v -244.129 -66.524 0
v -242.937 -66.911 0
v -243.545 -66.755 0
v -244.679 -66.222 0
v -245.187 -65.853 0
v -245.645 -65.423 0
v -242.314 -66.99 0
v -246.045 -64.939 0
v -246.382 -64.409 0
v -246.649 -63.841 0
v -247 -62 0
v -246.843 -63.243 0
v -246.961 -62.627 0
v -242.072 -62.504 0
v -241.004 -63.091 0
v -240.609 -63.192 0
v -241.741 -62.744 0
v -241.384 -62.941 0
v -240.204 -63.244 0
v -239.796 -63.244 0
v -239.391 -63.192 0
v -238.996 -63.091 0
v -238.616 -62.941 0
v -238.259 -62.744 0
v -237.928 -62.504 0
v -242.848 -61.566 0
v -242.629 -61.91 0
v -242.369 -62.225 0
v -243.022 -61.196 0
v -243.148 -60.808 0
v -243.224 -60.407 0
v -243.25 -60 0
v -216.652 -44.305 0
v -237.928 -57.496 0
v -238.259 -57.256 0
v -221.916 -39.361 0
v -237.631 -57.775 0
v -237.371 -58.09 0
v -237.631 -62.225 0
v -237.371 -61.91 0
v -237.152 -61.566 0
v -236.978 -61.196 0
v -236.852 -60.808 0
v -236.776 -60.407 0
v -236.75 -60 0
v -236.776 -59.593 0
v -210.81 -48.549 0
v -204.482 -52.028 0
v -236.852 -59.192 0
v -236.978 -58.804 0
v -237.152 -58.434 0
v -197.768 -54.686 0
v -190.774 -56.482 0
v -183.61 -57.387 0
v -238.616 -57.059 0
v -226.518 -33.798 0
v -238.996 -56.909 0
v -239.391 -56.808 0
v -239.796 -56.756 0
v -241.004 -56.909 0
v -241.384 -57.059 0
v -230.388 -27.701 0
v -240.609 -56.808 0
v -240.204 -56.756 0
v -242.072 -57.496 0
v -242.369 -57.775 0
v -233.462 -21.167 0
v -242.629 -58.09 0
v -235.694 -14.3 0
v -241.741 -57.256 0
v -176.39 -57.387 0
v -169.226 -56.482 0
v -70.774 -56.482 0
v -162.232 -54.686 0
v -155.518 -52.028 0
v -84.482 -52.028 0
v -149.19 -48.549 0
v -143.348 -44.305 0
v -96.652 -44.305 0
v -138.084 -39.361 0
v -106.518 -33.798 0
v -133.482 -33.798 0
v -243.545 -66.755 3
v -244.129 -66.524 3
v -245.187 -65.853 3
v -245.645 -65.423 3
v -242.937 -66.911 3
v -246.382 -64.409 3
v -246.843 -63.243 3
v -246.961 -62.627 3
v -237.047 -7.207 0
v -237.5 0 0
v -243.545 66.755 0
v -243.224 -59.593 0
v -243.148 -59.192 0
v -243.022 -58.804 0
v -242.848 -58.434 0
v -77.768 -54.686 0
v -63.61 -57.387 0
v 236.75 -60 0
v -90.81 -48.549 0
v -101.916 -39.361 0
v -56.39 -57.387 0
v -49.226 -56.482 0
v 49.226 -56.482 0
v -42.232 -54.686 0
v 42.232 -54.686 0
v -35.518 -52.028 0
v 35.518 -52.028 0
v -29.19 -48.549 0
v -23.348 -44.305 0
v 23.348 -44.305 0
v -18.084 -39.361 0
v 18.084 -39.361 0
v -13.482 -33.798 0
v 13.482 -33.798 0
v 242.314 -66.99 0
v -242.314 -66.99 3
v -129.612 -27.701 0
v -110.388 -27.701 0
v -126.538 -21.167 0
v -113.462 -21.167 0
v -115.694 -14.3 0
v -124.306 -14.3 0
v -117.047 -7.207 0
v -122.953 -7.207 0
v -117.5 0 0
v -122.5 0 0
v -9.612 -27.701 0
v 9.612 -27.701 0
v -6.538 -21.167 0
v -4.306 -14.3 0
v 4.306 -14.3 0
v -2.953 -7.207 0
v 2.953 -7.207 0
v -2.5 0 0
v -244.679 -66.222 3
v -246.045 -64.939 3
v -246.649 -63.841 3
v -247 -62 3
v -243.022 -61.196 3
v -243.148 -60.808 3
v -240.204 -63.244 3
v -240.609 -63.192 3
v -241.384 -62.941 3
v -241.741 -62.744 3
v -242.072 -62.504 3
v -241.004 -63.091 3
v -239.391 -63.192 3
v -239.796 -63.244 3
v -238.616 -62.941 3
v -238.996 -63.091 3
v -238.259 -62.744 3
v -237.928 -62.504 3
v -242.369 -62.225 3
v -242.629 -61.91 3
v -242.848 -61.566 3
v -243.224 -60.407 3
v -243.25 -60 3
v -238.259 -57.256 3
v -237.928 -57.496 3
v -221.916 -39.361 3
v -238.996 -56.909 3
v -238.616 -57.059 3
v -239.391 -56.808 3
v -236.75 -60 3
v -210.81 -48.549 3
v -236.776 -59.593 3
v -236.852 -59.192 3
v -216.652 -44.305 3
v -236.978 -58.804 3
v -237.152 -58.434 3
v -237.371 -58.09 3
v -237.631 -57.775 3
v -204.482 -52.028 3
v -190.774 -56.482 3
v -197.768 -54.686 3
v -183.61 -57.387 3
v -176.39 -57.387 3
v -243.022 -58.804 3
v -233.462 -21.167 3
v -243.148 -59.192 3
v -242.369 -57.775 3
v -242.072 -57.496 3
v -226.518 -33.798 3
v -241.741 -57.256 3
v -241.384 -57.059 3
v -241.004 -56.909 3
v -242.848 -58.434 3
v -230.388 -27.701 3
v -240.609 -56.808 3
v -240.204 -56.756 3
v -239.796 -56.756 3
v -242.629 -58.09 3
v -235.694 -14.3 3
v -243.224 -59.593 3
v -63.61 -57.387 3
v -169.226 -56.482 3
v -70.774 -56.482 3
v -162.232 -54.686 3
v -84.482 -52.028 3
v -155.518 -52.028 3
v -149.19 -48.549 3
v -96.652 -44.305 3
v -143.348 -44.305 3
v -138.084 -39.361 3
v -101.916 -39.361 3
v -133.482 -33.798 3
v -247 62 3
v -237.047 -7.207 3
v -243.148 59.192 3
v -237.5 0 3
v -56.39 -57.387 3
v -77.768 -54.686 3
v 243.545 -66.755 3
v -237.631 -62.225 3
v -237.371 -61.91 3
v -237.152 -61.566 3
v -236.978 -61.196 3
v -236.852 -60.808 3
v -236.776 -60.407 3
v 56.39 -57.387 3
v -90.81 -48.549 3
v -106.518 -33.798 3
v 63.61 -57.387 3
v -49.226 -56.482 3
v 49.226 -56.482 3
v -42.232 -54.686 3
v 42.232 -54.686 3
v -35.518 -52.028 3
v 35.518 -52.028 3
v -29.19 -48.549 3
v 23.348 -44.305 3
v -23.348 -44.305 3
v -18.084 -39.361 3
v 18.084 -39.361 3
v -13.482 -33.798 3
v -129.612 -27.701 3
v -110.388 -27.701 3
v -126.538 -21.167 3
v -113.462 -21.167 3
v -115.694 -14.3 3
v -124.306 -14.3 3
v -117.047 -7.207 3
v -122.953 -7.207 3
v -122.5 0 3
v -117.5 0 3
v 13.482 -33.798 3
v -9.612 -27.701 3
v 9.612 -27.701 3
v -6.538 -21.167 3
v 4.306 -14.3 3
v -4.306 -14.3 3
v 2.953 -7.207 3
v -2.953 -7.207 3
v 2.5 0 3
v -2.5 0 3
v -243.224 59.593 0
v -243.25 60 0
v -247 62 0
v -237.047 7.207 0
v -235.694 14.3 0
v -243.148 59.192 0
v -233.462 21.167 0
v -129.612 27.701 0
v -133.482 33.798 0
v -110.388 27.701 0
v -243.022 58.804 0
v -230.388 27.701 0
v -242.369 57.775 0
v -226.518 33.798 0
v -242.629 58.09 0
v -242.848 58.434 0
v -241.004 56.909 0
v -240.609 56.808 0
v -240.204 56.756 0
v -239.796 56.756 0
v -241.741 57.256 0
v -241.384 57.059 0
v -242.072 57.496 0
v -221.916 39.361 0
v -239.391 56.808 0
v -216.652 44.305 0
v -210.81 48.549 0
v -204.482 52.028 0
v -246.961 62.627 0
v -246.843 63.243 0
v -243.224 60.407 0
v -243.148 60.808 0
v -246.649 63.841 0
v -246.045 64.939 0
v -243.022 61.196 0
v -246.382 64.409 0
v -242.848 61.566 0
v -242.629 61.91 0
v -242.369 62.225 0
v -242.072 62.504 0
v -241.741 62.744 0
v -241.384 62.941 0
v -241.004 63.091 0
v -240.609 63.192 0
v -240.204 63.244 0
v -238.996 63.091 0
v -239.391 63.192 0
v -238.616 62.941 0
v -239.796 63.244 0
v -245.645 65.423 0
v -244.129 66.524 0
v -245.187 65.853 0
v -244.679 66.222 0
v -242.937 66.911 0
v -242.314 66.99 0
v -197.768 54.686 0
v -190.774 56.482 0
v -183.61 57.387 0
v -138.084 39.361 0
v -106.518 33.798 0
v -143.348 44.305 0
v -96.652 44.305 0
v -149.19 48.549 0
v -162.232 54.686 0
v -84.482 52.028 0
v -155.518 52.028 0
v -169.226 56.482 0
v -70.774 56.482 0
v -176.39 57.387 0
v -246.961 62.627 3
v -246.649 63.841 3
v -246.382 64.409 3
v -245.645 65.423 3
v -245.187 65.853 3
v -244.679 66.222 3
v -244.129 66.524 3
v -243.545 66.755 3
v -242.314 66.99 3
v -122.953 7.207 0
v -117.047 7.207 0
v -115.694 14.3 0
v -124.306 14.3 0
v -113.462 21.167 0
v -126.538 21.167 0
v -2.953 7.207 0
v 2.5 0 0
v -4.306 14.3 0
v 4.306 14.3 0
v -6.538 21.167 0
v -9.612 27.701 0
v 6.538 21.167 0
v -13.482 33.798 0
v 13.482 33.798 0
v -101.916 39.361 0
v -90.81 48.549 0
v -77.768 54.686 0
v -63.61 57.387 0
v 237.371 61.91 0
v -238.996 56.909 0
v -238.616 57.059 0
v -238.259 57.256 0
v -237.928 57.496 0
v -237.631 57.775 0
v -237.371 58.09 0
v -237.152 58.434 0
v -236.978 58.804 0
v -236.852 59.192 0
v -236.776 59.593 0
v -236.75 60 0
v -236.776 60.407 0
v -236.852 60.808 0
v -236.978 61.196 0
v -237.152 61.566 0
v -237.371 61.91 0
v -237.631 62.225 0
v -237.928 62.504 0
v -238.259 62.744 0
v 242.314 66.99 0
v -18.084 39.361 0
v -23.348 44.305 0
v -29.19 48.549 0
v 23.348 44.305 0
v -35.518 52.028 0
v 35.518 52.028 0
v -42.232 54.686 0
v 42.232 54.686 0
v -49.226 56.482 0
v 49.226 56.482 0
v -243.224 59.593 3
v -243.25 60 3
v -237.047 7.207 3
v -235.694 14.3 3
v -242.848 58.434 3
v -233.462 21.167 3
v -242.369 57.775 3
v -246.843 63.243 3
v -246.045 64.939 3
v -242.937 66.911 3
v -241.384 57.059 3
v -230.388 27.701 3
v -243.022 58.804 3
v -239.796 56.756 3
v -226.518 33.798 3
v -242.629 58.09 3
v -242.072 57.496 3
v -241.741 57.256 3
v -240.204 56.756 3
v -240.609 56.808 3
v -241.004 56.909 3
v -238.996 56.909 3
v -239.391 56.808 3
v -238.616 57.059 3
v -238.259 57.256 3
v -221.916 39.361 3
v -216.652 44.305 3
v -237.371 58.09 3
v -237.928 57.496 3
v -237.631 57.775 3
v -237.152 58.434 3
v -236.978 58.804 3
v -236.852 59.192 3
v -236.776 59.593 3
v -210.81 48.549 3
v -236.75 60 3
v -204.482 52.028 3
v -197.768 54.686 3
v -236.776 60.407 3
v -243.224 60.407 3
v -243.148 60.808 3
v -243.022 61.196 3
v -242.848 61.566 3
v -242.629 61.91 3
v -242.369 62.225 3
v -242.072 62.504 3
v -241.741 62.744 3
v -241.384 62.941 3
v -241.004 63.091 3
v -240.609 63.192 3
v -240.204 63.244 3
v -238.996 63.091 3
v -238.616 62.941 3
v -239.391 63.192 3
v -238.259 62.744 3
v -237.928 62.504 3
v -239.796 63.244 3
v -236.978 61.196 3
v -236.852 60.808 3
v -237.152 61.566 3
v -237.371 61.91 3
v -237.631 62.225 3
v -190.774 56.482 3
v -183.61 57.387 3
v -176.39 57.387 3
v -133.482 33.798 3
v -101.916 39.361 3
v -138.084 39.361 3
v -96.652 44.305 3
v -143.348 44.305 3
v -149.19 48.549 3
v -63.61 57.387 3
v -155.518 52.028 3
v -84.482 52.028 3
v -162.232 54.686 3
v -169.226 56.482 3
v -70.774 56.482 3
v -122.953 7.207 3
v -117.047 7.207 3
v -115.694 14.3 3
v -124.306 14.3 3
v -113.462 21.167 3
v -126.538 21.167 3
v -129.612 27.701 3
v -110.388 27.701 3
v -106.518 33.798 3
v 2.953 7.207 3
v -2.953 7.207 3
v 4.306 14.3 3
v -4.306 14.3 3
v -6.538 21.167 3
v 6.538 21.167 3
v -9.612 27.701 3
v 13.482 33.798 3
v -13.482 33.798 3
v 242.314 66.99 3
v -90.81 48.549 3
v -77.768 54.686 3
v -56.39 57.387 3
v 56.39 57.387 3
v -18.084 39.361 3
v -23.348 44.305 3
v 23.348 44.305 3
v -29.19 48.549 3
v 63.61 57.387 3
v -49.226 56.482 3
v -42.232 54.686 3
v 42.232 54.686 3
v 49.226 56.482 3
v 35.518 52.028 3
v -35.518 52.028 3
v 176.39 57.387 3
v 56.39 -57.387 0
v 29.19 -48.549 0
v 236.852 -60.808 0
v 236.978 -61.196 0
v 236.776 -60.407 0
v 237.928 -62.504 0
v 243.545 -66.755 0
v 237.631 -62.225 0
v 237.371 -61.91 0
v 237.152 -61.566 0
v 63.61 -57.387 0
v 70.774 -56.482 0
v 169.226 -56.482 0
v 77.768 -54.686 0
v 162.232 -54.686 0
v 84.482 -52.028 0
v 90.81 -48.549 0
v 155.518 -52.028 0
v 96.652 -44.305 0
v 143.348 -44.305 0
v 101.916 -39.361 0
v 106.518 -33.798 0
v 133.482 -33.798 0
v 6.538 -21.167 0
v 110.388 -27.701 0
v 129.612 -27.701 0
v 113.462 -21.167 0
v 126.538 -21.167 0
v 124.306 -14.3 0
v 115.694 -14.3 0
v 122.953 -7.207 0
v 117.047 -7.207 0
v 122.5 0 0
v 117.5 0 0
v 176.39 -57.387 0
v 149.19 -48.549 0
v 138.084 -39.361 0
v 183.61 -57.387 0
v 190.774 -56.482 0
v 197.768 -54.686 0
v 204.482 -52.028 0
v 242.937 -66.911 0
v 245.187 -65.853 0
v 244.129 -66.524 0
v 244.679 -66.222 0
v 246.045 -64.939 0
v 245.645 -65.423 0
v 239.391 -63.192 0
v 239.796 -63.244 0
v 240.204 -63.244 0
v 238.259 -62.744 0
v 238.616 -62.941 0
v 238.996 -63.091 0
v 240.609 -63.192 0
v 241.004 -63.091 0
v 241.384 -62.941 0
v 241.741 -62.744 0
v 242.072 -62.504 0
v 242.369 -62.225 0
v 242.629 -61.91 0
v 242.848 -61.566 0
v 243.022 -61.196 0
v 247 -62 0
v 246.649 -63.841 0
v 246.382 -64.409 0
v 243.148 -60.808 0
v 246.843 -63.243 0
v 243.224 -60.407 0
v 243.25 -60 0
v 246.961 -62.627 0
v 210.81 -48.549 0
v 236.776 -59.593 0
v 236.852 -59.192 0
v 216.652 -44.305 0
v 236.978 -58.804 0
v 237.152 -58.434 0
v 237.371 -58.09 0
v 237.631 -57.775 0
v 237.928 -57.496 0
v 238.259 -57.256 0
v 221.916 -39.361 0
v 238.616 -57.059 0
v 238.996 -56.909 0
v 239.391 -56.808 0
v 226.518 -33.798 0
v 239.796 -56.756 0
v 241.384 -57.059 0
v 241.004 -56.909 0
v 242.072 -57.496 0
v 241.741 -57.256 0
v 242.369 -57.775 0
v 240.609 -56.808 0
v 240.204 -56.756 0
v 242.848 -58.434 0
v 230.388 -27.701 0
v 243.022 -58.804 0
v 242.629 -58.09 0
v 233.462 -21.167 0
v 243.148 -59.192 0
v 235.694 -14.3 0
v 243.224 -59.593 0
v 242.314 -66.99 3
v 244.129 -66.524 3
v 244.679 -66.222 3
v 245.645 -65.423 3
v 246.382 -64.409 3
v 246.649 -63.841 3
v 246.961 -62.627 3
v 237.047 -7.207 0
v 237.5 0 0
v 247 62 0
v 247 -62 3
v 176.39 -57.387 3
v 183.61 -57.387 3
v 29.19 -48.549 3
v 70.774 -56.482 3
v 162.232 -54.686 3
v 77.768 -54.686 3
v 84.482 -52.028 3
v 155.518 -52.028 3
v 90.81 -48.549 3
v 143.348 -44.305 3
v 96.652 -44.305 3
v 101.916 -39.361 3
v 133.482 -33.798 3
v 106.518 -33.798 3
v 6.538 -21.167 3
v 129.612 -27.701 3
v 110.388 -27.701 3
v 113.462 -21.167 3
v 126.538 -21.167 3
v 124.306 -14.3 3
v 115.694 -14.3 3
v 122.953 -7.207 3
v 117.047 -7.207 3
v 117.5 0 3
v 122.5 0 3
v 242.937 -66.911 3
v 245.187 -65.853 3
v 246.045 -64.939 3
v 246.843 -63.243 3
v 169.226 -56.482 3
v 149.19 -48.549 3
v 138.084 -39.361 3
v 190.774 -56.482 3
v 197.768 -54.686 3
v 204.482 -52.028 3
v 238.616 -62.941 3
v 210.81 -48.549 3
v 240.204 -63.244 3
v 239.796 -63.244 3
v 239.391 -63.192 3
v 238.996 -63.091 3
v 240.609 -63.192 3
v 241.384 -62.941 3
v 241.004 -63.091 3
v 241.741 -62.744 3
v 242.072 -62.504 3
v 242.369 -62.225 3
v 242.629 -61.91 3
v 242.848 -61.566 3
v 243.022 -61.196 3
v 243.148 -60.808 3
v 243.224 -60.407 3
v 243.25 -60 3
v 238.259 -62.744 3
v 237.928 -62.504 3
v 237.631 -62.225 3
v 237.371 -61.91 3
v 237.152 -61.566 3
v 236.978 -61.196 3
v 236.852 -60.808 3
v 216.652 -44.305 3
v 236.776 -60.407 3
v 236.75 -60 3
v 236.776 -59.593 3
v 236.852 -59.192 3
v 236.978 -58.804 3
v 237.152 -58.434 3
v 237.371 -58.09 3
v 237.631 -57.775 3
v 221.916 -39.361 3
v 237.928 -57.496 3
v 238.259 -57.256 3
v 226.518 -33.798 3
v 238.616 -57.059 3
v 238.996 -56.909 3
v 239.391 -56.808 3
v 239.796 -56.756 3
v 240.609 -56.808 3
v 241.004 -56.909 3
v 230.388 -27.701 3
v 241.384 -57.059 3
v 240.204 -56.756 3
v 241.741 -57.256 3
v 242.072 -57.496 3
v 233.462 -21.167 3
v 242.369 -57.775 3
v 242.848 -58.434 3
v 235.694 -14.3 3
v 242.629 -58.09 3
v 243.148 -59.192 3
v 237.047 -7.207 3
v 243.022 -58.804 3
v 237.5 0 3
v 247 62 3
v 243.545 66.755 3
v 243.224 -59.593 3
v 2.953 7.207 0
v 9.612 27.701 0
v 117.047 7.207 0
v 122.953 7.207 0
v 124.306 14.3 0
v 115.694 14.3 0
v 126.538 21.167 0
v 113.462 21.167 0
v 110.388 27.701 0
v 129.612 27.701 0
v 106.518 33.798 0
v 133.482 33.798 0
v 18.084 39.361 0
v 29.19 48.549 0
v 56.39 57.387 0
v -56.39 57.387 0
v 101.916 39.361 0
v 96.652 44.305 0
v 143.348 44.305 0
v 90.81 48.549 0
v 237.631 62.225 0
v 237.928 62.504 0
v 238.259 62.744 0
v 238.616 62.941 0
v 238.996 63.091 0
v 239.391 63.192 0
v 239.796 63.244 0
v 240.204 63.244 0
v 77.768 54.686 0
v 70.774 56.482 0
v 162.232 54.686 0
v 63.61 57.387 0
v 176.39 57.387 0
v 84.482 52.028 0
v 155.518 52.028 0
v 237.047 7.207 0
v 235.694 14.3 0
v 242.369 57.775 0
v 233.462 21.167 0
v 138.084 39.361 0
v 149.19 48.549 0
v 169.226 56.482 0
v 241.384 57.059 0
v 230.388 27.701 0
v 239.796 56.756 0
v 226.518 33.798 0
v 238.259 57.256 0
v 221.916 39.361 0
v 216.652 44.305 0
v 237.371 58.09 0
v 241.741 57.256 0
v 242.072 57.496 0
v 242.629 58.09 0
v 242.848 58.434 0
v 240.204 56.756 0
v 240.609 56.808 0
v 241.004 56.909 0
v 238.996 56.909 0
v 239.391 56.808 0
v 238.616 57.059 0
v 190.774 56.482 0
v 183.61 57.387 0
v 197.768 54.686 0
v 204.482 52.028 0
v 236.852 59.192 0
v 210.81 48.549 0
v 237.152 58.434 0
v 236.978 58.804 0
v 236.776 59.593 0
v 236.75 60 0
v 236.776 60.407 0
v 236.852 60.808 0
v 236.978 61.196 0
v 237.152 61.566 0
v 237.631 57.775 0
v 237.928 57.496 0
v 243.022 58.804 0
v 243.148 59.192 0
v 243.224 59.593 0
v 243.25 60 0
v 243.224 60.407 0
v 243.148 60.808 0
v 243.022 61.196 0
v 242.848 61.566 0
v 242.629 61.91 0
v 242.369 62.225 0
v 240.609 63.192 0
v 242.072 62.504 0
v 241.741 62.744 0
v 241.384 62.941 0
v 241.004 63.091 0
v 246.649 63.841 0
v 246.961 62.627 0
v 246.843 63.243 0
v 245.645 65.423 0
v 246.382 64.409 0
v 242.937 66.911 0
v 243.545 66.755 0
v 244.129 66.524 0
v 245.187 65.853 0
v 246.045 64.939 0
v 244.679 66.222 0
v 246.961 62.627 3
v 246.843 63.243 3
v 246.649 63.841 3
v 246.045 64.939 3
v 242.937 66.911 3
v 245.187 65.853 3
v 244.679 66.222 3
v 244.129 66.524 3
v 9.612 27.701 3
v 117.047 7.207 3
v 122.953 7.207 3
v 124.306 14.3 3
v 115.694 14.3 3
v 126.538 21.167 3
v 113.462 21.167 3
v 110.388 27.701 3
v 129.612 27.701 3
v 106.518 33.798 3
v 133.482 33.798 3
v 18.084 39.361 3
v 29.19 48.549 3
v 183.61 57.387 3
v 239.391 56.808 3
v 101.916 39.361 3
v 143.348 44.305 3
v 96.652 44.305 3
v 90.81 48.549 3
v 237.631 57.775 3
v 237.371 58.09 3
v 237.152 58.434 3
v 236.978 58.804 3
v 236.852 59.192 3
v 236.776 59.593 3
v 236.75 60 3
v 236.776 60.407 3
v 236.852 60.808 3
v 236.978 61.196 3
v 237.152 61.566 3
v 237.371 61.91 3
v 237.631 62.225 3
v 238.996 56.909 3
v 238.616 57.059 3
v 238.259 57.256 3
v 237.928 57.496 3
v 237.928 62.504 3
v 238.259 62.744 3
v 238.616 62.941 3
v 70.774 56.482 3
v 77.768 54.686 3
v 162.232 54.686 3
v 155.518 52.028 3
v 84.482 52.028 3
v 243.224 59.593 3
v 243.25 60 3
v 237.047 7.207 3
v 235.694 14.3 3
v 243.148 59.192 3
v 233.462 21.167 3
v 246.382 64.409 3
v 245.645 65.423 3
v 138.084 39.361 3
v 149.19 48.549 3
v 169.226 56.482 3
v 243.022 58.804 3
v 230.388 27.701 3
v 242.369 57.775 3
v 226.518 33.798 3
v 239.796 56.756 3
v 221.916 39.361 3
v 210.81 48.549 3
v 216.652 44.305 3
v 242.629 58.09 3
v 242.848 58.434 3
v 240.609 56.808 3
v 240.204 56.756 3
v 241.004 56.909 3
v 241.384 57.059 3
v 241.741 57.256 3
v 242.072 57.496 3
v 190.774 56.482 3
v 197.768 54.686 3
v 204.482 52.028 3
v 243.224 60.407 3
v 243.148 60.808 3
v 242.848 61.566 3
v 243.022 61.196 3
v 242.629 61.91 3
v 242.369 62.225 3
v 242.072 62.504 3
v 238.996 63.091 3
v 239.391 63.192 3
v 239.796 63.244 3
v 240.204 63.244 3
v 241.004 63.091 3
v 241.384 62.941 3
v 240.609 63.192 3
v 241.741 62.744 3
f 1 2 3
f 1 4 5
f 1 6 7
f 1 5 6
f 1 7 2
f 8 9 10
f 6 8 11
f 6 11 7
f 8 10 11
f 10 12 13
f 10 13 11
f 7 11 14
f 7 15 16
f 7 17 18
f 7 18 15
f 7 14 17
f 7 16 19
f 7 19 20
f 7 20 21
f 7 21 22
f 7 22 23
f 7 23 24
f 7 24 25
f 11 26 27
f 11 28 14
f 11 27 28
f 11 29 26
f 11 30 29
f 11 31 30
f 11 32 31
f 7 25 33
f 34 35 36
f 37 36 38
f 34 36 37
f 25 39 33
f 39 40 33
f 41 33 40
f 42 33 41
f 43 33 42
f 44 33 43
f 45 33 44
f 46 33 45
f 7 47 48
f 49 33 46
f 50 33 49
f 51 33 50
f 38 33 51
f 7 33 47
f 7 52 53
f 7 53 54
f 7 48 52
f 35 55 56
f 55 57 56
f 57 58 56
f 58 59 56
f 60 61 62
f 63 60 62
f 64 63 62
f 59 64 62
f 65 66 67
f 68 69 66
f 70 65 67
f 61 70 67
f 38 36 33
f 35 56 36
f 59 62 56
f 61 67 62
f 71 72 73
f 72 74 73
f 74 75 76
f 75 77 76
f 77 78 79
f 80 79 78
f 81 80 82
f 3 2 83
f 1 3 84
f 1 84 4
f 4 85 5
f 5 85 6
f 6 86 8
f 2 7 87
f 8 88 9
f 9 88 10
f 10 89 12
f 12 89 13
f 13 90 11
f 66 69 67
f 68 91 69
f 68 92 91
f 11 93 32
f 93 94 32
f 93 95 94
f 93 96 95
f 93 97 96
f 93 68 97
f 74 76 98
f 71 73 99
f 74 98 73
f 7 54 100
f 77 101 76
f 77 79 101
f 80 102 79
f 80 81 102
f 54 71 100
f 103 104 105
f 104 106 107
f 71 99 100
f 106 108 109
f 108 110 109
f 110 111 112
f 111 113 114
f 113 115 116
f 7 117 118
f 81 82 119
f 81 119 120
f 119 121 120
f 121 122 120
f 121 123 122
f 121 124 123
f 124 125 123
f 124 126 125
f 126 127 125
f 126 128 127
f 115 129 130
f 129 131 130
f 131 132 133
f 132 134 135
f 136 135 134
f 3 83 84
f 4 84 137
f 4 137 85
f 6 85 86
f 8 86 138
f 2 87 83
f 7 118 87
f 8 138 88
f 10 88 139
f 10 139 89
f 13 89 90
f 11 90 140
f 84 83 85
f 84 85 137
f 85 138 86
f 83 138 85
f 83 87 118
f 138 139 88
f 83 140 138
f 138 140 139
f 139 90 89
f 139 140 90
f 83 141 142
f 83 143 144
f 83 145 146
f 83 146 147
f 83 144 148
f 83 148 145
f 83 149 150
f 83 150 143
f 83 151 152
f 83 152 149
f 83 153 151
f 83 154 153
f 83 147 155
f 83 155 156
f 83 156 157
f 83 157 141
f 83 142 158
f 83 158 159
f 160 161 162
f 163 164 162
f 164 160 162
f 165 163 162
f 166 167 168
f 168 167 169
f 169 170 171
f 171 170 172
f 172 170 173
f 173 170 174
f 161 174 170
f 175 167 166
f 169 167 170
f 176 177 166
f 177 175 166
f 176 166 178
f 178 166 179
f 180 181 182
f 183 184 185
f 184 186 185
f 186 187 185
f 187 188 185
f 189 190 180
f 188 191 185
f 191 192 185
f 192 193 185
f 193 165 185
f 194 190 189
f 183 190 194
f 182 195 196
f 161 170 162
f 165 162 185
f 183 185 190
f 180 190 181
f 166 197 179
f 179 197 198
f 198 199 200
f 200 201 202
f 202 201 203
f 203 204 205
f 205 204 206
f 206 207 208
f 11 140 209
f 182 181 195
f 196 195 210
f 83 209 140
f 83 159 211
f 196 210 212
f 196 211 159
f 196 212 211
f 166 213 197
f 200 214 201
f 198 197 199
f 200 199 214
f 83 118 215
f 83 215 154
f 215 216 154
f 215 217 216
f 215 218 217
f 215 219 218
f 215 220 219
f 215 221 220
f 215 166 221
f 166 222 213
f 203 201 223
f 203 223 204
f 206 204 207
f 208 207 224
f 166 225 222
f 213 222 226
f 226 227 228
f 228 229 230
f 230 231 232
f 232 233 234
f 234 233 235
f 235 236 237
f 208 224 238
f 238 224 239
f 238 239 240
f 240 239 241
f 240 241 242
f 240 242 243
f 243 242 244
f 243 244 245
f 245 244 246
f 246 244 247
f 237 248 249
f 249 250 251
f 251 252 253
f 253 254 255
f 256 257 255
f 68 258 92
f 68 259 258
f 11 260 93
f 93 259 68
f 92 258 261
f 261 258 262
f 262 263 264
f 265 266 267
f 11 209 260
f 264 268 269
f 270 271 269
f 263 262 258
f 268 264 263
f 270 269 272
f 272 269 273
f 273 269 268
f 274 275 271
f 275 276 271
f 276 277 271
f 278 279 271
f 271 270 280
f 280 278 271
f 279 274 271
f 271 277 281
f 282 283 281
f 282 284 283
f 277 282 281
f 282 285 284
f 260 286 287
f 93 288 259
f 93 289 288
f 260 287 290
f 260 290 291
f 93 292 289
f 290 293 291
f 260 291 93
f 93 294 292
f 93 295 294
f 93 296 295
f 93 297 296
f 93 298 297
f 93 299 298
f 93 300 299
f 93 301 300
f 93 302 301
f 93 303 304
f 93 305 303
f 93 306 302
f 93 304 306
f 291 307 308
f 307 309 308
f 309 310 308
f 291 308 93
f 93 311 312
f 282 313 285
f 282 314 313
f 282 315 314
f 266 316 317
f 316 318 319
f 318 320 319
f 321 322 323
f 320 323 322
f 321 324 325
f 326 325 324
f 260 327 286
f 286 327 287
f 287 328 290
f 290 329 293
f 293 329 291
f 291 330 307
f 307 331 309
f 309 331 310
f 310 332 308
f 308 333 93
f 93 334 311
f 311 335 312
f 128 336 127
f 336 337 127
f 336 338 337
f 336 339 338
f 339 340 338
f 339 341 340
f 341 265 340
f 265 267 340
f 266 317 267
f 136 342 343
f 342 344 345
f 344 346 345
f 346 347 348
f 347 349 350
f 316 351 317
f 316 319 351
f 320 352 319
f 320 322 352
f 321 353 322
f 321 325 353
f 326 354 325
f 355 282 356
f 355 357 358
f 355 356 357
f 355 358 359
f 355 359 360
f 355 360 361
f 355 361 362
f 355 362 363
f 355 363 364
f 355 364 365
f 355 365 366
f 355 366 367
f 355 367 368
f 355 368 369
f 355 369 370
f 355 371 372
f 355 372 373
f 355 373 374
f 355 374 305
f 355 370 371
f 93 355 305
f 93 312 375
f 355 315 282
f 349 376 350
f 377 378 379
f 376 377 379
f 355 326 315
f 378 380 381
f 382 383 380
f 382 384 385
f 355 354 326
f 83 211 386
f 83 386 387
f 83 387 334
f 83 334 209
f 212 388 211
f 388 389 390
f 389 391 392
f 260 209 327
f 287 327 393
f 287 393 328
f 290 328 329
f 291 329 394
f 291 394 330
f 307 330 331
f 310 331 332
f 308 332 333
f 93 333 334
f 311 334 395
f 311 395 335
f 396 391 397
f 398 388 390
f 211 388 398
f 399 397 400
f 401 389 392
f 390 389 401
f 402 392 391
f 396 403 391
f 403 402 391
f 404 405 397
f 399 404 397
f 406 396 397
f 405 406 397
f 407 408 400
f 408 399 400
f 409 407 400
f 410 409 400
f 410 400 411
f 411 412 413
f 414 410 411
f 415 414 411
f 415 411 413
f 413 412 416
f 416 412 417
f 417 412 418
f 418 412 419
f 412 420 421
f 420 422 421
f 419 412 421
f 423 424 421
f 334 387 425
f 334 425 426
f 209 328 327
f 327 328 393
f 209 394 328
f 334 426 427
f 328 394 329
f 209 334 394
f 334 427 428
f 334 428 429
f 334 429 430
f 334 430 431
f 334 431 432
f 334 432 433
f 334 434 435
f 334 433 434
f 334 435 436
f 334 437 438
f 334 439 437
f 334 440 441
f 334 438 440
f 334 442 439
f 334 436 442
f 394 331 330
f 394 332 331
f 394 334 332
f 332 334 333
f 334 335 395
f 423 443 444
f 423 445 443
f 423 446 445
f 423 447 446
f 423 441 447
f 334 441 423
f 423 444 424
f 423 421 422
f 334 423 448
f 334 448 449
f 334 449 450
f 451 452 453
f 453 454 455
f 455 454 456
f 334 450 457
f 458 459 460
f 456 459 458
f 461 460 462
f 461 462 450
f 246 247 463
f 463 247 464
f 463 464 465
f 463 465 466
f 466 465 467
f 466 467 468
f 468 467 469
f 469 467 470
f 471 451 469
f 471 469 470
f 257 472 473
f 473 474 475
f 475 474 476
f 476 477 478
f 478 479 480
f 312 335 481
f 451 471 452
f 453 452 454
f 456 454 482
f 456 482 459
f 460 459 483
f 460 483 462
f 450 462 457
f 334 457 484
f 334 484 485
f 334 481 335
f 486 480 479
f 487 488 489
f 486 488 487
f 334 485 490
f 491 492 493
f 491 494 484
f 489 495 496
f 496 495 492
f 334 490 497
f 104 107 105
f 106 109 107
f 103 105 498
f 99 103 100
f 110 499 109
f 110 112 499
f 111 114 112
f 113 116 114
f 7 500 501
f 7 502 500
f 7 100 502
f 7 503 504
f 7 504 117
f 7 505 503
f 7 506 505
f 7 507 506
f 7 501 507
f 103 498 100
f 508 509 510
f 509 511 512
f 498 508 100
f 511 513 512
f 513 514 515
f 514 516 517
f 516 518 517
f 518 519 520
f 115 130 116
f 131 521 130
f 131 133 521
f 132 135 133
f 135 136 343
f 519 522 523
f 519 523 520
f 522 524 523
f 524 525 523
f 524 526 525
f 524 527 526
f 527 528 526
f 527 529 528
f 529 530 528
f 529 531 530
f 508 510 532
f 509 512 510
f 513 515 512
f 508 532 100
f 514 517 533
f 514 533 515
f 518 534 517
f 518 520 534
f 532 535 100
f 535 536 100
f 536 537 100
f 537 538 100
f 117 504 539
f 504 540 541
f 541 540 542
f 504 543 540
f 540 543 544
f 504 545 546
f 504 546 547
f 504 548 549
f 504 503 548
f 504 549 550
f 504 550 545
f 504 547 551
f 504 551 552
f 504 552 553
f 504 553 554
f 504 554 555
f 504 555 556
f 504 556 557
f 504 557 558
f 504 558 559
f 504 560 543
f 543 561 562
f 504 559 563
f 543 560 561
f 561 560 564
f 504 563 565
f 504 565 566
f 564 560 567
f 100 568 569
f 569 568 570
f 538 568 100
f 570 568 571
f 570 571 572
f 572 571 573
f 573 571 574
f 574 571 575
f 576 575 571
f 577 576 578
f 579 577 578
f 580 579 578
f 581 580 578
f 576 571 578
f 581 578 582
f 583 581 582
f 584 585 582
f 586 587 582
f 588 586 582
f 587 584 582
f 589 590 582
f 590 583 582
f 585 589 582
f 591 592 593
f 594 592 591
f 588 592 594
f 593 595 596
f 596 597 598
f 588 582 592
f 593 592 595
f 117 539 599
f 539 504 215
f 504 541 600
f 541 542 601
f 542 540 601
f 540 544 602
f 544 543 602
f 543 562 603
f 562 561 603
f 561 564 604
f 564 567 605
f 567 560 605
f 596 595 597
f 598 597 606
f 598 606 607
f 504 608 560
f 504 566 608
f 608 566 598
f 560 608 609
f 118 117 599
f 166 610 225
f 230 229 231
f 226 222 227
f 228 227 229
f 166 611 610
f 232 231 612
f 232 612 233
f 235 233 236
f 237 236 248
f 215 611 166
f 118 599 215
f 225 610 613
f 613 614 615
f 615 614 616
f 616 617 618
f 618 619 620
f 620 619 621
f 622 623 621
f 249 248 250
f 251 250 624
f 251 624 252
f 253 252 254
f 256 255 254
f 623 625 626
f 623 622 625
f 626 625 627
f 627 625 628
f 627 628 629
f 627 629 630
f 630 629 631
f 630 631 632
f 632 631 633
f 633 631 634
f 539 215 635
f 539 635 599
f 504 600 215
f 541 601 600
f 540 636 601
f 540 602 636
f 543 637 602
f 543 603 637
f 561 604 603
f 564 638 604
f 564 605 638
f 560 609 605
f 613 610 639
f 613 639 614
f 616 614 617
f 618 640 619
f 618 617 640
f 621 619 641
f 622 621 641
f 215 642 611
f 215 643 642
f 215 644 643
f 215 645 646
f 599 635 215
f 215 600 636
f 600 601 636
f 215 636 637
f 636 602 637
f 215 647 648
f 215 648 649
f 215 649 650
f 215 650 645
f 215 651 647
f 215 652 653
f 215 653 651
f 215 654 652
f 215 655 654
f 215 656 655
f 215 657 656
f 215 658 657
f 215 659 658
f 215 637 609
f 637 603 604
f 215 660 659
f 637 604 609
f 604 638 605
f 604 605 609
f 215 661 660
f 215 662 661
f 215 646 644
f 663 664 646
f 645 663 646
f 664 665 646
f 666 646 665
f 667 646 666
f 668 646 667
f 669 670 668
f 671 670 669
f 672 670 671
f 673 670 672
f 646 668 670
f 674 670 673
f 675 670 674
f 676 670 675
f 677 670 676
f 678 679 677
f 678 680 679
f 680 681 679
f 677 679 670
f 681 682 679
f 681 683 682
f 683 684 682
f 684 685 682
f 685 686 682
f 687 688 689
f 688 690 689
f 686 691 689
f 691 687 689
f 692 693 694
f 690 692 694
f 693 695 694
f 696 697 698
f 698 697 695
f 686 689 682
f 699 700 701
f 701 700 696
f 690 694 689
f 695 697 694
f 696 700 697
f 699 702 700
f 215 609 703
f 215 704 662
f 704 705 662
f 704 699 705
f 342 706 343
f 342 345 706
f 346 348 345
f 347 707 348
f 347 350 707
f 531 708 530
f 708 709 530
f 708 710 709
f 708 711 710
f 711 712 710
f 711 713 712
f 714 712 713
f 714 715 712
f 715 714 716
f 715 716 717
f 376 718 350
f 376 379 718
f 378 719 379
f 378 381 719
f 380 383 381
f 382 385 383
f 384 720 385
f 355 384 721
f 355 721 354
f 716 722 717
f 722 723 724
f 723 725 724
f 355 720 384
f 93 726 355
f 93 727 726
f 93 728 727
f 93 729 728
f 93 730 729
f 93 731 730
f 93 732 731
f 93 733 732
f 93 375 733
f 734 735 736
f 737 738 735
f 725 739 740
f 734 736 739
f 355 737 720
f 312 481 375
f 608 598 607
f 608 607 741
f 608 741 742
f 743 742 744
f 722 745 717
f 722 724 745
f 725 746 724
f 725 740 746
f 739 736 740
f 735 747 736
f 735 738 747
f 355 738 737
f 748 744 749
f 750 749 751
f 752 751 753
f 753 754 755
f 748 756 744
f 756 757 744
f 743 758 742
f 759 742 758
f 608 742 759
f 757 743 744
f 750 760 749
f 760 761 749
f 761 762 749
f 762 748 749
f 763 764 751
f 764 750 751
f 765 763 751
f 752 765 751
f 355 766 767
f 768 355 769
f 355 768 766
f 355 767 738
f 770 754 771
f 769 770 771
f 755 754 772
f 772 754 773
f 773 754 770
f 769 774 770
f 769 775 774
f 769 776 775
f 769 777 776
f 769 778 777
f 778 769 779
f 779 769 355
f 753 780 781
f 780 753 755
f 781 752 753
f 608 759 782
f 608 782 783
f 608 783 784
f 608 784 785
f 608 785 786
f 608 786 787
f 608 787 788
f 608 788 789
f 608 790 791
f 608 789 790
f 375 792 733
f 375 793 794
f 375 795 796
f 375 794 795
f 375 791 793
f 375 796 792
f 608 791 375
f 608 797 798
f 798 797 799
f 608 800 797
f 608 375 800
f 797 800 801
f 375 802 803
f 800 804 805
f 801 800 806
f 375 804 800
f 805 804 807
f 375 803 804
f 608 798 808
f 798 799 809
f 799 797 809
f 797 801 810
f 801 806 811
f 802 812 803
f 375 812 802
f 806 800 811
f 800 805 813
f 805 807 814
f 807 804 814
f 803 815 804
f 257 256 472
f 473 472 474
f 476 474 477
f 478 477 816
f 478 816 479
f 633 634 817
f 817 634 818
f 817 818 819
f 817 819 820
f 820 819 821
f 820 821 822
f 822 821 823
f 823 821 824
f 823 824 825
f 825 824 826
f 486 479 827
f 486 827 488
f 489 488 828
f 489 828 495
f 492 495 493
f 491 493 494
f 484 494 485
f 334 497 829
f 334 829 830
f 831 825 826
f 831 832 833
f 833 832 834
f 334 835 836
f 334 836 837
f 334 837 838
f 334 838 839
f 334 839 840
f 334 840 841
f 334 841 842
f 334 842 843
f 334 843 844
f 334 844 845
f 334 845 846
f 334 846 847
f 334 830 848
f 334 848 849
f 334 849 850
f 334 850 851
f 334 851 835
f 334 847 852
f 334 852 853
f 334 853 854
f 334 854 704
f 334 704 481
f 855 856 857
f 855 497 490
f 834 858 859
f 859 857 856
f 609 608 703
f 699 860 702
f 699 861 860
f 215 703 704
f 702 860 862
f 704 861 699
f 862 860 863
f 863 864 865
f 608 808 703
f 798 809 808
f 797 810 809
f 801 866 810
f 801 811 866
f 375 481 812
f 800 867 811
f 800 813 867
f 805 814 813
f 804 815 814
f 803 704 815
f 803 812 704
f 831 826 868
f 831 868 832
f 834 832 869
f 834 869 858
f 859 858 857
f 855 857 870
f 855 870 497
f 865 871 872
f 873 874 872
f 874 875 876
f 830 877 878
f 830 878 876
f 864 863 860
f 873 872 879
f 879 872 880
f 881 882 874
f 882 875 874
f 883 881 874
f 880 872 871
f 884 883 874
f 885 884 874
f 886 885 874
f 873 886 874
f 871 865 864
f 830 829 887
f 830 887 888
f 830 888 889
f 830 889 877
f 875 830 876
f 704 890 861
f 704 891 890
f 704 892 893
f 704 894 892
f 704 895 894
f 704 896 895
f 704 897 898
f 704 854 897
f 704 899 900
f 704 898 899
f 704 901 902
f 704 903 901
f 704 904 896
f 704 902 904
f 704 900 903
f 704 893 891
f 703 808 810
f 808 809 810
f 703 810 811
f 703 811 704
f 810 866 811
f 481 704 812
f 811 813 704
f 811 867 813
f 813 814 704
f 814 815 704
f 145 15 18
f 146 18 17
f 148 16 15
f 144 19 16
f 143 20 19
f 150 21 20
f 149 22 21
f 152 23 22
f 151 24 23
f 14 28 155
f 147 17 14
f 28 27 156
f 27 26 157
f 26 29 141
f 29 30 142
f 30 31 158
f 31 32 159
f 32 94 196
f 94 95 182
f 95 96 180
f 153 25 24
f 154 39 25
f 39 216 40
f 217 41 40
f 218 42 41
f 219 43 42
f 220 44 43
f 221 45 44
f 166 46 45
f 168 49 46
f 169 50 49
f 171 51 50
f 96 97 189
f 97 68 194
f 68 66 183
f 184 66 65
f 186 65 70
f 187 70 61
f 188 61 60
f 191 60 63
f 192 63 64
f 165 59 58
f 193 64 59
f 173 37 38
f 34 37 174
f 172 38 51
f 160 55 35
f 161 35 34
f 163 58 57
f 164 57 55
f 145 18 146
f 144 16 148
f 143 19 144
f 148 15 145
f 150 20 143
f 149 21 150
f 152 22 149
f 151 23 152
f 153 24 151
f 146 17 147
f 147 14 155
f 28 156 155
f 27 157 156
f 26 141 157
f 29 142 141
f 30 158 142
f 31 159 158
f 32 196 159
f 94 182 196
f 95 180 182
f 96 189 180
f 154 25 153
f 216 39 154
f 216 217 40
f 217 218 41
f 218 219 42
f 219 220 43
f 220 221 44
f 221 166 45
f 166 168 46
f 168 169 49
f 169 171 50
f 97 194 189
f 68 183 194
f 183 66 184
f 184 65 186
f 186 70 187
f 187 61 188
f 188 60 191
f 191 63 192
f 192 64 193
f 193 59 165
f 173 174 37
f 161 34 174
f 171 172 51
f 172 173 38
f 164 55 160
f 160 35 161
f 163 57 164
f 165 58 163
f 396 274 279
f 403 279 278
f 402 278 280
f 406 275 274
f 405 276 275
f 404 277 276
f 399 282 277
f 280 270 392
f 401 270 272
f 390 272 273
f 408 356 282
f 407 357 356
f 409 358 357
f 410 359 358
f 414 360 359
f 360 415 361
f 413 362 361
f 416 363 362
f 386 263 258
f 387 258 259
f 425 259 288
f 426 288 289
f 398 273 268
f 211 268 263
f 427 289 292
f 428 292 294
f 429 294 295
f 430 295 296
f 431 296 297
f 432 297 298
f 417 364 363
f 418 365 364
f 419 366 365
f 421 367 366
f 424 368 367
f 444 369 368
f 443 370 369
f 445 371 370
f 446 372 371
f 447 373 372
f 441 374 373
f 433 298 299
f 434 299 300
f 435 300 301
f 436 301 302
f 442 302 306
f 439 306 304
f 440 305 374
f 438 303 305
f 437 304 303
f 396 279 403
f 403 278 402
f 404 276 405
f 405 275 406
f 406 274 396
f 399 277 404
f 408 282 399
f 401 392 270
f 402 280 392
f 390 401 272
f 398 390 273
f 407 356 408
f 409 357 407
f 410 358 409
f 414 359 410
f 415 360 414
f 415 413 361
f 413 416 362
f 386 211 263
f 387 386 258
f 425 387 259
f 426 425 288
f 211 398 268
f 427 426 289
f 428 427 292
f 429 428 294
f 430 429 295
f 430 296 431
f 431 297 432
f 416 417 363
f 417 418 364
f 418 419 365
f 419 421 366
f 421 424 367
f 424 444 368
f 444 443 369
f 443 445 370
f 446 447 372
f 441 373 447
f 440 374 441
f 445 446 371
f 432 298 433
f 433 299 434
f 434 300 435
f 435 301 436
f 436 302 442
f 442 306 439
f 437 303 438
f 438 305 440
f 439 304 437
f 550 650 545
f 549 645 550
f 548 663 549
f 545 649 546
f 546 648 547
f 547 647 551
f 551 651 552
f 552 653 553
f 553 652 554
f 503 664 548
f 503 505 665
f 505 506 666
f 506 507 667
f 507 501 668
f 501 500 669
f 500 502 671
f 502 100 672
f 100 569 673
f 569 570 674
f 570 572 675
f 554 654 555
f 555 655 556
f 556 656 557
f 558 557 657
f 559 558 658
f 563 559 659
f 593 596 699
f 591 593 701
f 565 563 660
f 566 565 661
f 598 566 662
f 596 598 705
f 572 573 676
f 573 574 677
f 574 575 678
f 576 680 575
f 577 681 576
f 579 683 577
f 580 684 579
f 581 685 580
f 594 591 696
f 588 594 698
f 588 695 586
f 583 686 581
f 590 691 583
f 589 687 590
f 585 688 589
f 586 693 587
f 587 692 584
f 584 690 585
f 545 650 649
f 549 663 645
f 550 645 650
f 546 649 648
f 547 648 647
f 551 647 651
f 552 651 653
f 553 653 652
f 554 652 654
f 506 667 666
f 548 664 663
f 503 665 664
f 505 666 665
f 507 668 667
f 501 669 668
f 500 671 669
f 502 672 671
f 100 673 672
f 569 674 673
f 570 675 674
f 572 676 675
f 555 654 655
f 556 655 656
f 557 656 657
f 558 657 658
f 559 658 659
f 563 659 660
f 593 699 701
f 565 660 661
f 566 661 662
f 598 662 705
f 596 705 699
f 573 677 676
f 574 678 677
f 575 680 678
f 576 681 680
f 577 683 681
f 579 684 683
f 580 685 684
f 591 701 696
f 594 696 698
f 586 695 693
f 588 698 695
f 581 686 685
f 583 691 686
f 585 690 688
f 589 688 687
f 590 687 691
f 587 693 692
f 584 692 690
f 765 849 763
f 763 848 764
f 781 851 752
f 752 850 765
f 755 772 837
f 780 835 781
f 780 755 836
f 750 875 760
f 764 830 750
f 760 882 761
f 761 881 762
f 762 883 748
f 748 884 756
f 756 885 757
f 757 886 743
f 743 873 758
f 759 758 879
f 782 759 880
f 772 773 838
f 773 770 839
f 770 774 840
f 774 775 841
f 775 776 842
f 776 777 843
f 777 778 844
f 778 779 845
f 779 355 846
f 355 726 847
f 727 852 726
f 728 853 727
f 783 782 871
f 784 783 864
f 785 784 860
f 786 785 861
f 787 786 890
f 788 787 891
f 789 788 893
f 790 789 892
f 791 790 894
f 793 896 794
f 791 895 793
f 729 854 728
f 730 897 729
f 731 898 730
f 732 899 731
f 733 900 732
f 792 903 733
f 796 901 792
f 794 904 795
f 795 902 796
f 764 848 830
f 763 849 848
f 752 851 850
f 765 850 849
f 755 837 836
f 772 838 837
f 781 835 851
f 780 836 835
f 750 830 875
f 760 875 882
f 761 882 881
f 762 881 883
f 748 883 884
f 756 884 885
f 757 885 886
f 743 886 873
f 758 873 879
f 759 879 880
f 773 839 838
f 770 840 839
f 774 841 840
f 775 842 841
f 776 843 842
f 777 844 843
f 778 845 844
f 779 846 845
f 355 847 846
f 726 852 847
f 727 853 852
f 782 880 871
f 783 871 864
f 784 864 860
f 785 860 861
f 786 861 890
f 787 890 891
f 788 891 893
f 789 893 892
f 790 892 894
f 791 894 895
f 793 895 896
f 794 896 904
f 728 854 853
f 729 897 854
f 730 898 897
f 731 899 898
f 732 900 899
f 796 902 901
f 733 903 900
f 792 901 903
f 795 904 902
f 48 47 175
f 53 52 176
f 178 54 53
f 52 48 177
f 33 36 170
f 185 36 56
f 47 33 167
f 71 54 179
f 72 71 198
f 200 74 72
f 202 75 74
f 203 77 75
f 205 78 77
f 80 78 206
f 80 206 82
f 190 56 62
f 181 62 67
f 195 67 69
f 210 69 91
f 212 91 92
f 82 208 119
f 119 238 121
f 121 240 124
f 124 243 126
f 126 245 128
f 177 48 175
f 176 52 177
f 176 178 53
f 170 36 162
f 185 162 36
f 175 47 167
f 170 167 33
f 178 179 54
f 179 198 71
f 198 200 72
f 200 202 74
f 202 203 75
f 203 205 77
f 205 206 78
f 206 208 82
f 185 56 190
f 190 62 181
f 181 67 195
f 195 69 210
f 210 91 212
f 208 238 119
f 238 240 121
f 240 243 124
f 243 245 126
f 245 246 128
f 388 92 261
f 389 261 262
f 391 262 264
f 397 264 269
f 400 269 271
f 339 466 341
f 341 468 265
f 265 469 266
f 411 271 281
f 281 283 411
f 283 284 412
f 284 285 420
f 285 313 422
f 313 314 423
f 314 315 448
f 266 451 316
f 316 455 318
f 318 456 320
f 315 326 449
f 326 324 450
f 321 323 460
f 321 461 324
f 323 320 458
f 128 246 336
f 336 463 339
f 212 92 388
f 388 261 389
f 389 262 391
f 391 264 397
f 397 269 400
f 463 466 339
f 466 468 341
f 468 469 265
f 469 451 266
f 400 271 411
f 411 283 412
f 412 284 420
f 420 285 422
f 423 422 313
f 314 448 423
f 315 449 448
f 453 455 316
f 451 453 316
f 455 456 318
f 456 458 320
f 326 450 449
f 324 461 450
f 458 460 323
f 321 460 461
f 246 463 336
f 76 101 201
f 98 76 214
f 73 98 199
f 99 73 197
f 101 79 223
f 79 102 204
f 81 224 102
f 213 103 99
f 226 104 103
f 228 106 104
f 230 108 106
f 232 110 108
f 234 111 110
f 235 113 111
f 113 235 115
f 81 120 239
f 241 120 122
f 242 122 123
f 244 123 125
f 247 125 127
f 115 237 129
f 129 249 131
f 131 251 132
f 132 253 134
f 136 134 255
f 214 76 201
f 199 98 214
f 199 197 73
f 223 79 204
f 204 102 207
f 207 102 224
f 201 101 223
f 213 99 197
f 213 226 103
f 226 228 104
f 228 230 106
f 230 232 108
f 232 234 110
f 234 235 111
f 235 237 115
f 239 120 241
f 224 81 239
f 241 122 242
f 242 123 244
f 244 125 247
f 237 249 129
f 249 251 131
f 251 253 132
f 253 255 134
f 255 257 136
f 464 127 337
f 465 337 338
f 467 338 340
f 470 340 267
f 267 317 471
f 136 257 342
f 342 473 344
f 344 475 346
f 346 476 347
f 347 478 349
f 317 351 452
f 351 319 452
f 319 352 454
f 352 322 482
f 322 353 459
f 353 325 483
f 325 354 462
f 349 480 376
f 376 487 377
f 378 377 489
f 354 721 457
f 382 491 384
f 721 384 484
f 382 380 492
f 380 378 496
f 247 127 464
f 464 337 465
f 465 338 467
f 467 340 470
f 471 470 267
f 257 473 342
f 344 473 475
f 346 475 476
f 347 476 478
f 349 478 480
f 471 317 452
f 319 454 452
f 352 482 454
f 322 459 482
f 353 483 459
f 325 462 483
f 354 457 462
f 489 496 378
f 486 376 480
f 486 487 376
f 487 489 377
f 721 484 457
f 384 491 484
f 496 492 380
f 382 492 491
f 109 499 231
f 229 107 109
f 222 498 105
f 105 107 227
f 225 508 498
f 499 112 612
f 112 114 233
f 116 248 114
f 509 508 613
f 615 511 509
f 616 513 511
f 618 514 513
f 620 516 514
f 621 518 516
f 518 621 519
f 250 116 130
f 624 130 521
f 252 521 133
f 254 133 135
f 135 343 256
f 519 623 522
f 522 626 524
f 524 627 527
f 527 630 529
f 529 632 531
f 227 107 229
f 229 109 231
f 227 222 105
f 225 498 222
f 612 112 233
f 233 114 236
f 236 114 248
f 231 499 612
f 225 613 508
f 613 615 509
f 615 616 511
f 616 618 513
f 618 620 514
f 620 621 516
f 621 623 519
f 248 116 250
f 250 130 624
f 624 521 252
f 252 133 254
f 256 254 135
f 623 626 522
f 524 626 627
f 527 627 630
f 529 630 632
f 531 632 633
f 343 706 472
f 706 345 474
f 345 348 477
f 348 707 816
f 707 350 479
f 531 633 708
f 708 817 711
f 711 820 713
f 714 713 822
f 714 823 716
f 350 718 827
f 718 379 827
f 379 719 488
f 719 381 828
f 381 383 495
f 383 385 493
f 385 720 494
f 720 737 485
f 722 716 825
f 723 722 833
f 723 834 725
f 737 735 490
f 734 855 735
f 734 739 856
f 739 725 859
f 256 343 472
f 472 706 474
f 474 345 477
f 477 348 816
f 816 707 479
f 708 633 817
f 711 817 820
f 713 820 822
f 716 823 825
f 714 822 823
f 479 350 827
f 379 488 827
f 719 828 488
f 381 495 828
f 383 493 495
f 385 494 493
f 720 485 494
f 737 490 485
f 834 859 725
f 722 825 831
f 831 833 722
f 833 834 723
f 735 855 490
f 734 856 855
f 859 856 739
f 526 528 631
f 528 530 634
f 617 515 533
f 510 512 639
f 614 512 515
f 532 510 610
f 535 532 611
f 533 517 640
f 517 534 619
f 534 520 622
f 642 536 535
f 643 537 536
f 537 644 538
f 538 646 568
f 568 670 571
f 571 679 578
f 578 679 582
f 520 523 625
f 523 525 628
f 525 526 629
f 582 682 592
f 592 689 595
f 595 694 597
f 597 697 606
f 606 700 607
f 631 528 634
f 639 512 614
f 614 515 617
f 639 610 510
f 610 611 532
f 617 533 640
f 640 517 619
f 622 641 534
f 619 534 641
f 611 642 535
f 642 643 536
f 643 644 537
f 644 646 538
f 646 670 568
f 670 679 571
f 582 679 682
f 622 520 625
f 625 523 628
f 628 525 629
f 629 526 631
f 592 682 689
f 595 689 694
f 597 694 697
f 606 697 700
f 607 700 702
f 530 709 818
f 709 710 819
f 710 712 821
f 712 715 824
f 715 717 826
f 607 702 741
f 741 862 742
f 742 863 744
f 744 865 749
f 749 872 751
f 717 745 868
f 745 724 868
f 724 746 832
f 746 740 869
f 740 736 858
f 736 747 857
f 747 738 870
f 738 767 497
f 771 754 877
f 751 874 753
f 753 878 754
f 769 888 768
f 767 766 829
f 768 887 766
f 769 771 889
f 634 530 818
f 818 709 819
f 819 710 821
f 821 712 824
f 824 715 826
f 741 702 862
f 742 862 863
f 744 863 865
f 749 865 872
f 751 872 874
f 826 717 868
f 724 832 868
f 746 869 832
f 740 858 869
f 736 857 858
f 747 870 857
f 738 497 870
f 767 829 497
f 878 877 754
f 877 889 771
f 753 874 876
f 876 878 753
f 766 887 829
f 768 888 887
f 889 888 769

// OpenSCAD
$fn = 50;

difference() {
	union() {
		hull() {
			translate(v = [-242.0, 62.0, 0]) {
				cylinder(h = 3, r = 5);
			}
			translate(v = [242.0, 62.0, 0]) {
				cylinder(h = 3, r = 5);
			}
			translate(v = [-242.0, -62.0, 0]) {
				cylinder(h = 3, r = 5);
			}
			translate(v = [242.0, -62.0, 0]) {
				cylinder(h = 3, r = 5);
			}
		}
	}
	union() {
		translate(v = [-240.0, -60.0, -100.0]) {
			cylinder(h = 200, r = 3.25);
		}
		translate(v = [-240.0, 60.0, -100.0]) {
			cylinder(h = 200, r = 3.25);
		}
		translate(v = [240.0, -60.0, -100.0]) {
			cylinder(h = 200, r = 3.25);
		}
		translate(v = [240.0, 60.0, -100.0]) {
			cylinder(h = 200, r = 3.25);
		}
		translate(v = [-240.0, -60.0, -100.0]) {
			cylinder(h = 200, r = 1.8);
		}
		translate(v = [-240.0, 60.0, -100.0]) {
			cylinder(h = 200, r = 1.8);
		}
		translate(v = [240.0, -60.0, -100.0]) {
			cylinder(h = 200, r = 1.8);
		}
		translate(v = [240.0, 60.0, -100.0]) {
			cylinder(h = 200, r = 1.8);
		}
		translate(v = [-180.0, 0, 0.0]) {
			cylinder(h = 3, r = 57.5);
		}
		translate(v = [-60.0, 0, 0.0]) {
			cylinder(h = 3, r = 57.5);
		}
		translate(v = [60.0, 0, 0.0]) {
			cylinder(h = 3, r = 57.5);
		}
		translate(v = [180.0, 0, 0.0]) {
			cylinder(h = 3, r = 57.5);
		}
	}
}
